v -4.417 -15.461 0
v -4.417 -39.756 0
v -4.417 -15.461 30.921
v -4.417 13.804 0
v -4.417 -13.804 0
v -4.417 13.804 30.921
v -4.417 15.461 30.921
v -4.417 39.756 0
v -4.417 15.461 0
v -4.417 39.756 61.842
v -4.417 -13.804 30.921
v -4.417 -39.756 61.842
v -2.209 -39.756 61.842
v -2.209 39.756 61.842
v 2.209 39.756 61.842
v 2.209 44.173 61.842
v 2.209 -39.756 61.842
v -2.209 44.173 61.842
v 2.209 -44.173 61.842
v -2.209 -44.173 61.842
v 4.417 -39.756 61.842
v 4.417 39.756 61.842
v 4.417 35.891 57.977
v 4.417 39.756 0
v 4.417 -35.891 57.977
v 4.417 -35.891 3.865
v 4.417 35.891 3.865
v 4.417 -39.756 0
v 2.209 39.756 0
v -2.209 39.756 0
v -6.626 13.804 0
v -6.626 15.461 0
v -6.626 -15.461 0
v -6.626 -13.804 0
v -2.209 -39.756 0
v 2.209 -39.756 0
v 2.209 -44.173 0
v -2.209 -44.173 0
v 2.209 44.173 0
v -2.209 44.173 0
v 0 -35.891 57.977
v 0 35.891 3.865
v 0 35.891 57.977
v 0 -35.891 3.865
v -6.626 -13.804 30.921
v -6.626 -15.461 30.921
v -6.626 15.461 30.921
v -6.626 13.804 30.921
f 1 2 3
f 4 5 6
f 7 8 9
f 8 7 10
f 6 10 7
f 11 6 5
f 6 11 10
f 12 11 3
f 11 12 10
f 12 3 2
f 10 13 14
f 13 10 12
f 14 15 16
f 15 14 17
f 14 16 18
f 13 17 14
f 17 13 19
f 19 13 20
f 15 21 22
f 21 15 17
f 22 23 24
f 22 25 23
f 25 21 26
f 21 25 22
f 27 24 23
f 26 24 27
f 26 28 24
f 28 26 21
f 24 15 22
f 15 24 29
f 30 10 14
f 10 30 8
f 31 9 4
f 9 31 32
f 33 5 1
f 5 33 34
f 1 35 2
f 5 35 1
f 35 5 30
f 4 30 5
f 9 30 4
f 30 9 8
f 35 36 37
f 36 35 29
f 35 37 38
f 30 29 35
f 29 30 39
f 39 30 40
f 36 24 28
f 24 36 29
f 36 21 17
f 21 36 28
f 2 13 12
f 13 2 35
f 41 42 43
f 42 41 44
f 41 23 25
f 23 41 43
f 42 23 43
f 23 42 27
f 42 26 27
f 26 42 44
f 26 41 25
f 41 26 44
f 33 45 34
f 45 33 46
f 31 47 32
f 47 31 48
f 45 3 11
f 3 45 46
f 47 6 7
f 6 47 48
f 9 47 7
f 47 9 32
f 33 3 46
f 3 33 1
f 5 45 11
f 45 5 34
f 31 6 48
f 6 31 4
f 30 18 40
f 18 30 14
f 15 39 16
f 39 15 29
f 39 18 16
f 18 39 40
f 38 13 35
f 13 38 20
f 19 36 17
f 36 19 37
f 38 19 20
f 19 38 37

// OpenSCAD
// computer_holder.scad

scale([0.843, 0.843, 0.843])
scale([2.62, 2.62, 2.62])
union() {

difference() {

translate([0, 0, 14])
cube([4, 36, 28], center = true);

translate([4, 0, 14])
cube([8, 32.5, 24.5], center = true);
    
}

difference() {

translate([-2, 0, 7]) 
cube([2, 14, 14], center = true);

translate([-3, 0, 7]) 
cube([3, 12.5, 18], center = true);
    
}

translate([0, 19, 14])
cube([2, 2, 28], center = true);

translate([0, -19, 14])
cube([2, 2, 28], center = true);

}
